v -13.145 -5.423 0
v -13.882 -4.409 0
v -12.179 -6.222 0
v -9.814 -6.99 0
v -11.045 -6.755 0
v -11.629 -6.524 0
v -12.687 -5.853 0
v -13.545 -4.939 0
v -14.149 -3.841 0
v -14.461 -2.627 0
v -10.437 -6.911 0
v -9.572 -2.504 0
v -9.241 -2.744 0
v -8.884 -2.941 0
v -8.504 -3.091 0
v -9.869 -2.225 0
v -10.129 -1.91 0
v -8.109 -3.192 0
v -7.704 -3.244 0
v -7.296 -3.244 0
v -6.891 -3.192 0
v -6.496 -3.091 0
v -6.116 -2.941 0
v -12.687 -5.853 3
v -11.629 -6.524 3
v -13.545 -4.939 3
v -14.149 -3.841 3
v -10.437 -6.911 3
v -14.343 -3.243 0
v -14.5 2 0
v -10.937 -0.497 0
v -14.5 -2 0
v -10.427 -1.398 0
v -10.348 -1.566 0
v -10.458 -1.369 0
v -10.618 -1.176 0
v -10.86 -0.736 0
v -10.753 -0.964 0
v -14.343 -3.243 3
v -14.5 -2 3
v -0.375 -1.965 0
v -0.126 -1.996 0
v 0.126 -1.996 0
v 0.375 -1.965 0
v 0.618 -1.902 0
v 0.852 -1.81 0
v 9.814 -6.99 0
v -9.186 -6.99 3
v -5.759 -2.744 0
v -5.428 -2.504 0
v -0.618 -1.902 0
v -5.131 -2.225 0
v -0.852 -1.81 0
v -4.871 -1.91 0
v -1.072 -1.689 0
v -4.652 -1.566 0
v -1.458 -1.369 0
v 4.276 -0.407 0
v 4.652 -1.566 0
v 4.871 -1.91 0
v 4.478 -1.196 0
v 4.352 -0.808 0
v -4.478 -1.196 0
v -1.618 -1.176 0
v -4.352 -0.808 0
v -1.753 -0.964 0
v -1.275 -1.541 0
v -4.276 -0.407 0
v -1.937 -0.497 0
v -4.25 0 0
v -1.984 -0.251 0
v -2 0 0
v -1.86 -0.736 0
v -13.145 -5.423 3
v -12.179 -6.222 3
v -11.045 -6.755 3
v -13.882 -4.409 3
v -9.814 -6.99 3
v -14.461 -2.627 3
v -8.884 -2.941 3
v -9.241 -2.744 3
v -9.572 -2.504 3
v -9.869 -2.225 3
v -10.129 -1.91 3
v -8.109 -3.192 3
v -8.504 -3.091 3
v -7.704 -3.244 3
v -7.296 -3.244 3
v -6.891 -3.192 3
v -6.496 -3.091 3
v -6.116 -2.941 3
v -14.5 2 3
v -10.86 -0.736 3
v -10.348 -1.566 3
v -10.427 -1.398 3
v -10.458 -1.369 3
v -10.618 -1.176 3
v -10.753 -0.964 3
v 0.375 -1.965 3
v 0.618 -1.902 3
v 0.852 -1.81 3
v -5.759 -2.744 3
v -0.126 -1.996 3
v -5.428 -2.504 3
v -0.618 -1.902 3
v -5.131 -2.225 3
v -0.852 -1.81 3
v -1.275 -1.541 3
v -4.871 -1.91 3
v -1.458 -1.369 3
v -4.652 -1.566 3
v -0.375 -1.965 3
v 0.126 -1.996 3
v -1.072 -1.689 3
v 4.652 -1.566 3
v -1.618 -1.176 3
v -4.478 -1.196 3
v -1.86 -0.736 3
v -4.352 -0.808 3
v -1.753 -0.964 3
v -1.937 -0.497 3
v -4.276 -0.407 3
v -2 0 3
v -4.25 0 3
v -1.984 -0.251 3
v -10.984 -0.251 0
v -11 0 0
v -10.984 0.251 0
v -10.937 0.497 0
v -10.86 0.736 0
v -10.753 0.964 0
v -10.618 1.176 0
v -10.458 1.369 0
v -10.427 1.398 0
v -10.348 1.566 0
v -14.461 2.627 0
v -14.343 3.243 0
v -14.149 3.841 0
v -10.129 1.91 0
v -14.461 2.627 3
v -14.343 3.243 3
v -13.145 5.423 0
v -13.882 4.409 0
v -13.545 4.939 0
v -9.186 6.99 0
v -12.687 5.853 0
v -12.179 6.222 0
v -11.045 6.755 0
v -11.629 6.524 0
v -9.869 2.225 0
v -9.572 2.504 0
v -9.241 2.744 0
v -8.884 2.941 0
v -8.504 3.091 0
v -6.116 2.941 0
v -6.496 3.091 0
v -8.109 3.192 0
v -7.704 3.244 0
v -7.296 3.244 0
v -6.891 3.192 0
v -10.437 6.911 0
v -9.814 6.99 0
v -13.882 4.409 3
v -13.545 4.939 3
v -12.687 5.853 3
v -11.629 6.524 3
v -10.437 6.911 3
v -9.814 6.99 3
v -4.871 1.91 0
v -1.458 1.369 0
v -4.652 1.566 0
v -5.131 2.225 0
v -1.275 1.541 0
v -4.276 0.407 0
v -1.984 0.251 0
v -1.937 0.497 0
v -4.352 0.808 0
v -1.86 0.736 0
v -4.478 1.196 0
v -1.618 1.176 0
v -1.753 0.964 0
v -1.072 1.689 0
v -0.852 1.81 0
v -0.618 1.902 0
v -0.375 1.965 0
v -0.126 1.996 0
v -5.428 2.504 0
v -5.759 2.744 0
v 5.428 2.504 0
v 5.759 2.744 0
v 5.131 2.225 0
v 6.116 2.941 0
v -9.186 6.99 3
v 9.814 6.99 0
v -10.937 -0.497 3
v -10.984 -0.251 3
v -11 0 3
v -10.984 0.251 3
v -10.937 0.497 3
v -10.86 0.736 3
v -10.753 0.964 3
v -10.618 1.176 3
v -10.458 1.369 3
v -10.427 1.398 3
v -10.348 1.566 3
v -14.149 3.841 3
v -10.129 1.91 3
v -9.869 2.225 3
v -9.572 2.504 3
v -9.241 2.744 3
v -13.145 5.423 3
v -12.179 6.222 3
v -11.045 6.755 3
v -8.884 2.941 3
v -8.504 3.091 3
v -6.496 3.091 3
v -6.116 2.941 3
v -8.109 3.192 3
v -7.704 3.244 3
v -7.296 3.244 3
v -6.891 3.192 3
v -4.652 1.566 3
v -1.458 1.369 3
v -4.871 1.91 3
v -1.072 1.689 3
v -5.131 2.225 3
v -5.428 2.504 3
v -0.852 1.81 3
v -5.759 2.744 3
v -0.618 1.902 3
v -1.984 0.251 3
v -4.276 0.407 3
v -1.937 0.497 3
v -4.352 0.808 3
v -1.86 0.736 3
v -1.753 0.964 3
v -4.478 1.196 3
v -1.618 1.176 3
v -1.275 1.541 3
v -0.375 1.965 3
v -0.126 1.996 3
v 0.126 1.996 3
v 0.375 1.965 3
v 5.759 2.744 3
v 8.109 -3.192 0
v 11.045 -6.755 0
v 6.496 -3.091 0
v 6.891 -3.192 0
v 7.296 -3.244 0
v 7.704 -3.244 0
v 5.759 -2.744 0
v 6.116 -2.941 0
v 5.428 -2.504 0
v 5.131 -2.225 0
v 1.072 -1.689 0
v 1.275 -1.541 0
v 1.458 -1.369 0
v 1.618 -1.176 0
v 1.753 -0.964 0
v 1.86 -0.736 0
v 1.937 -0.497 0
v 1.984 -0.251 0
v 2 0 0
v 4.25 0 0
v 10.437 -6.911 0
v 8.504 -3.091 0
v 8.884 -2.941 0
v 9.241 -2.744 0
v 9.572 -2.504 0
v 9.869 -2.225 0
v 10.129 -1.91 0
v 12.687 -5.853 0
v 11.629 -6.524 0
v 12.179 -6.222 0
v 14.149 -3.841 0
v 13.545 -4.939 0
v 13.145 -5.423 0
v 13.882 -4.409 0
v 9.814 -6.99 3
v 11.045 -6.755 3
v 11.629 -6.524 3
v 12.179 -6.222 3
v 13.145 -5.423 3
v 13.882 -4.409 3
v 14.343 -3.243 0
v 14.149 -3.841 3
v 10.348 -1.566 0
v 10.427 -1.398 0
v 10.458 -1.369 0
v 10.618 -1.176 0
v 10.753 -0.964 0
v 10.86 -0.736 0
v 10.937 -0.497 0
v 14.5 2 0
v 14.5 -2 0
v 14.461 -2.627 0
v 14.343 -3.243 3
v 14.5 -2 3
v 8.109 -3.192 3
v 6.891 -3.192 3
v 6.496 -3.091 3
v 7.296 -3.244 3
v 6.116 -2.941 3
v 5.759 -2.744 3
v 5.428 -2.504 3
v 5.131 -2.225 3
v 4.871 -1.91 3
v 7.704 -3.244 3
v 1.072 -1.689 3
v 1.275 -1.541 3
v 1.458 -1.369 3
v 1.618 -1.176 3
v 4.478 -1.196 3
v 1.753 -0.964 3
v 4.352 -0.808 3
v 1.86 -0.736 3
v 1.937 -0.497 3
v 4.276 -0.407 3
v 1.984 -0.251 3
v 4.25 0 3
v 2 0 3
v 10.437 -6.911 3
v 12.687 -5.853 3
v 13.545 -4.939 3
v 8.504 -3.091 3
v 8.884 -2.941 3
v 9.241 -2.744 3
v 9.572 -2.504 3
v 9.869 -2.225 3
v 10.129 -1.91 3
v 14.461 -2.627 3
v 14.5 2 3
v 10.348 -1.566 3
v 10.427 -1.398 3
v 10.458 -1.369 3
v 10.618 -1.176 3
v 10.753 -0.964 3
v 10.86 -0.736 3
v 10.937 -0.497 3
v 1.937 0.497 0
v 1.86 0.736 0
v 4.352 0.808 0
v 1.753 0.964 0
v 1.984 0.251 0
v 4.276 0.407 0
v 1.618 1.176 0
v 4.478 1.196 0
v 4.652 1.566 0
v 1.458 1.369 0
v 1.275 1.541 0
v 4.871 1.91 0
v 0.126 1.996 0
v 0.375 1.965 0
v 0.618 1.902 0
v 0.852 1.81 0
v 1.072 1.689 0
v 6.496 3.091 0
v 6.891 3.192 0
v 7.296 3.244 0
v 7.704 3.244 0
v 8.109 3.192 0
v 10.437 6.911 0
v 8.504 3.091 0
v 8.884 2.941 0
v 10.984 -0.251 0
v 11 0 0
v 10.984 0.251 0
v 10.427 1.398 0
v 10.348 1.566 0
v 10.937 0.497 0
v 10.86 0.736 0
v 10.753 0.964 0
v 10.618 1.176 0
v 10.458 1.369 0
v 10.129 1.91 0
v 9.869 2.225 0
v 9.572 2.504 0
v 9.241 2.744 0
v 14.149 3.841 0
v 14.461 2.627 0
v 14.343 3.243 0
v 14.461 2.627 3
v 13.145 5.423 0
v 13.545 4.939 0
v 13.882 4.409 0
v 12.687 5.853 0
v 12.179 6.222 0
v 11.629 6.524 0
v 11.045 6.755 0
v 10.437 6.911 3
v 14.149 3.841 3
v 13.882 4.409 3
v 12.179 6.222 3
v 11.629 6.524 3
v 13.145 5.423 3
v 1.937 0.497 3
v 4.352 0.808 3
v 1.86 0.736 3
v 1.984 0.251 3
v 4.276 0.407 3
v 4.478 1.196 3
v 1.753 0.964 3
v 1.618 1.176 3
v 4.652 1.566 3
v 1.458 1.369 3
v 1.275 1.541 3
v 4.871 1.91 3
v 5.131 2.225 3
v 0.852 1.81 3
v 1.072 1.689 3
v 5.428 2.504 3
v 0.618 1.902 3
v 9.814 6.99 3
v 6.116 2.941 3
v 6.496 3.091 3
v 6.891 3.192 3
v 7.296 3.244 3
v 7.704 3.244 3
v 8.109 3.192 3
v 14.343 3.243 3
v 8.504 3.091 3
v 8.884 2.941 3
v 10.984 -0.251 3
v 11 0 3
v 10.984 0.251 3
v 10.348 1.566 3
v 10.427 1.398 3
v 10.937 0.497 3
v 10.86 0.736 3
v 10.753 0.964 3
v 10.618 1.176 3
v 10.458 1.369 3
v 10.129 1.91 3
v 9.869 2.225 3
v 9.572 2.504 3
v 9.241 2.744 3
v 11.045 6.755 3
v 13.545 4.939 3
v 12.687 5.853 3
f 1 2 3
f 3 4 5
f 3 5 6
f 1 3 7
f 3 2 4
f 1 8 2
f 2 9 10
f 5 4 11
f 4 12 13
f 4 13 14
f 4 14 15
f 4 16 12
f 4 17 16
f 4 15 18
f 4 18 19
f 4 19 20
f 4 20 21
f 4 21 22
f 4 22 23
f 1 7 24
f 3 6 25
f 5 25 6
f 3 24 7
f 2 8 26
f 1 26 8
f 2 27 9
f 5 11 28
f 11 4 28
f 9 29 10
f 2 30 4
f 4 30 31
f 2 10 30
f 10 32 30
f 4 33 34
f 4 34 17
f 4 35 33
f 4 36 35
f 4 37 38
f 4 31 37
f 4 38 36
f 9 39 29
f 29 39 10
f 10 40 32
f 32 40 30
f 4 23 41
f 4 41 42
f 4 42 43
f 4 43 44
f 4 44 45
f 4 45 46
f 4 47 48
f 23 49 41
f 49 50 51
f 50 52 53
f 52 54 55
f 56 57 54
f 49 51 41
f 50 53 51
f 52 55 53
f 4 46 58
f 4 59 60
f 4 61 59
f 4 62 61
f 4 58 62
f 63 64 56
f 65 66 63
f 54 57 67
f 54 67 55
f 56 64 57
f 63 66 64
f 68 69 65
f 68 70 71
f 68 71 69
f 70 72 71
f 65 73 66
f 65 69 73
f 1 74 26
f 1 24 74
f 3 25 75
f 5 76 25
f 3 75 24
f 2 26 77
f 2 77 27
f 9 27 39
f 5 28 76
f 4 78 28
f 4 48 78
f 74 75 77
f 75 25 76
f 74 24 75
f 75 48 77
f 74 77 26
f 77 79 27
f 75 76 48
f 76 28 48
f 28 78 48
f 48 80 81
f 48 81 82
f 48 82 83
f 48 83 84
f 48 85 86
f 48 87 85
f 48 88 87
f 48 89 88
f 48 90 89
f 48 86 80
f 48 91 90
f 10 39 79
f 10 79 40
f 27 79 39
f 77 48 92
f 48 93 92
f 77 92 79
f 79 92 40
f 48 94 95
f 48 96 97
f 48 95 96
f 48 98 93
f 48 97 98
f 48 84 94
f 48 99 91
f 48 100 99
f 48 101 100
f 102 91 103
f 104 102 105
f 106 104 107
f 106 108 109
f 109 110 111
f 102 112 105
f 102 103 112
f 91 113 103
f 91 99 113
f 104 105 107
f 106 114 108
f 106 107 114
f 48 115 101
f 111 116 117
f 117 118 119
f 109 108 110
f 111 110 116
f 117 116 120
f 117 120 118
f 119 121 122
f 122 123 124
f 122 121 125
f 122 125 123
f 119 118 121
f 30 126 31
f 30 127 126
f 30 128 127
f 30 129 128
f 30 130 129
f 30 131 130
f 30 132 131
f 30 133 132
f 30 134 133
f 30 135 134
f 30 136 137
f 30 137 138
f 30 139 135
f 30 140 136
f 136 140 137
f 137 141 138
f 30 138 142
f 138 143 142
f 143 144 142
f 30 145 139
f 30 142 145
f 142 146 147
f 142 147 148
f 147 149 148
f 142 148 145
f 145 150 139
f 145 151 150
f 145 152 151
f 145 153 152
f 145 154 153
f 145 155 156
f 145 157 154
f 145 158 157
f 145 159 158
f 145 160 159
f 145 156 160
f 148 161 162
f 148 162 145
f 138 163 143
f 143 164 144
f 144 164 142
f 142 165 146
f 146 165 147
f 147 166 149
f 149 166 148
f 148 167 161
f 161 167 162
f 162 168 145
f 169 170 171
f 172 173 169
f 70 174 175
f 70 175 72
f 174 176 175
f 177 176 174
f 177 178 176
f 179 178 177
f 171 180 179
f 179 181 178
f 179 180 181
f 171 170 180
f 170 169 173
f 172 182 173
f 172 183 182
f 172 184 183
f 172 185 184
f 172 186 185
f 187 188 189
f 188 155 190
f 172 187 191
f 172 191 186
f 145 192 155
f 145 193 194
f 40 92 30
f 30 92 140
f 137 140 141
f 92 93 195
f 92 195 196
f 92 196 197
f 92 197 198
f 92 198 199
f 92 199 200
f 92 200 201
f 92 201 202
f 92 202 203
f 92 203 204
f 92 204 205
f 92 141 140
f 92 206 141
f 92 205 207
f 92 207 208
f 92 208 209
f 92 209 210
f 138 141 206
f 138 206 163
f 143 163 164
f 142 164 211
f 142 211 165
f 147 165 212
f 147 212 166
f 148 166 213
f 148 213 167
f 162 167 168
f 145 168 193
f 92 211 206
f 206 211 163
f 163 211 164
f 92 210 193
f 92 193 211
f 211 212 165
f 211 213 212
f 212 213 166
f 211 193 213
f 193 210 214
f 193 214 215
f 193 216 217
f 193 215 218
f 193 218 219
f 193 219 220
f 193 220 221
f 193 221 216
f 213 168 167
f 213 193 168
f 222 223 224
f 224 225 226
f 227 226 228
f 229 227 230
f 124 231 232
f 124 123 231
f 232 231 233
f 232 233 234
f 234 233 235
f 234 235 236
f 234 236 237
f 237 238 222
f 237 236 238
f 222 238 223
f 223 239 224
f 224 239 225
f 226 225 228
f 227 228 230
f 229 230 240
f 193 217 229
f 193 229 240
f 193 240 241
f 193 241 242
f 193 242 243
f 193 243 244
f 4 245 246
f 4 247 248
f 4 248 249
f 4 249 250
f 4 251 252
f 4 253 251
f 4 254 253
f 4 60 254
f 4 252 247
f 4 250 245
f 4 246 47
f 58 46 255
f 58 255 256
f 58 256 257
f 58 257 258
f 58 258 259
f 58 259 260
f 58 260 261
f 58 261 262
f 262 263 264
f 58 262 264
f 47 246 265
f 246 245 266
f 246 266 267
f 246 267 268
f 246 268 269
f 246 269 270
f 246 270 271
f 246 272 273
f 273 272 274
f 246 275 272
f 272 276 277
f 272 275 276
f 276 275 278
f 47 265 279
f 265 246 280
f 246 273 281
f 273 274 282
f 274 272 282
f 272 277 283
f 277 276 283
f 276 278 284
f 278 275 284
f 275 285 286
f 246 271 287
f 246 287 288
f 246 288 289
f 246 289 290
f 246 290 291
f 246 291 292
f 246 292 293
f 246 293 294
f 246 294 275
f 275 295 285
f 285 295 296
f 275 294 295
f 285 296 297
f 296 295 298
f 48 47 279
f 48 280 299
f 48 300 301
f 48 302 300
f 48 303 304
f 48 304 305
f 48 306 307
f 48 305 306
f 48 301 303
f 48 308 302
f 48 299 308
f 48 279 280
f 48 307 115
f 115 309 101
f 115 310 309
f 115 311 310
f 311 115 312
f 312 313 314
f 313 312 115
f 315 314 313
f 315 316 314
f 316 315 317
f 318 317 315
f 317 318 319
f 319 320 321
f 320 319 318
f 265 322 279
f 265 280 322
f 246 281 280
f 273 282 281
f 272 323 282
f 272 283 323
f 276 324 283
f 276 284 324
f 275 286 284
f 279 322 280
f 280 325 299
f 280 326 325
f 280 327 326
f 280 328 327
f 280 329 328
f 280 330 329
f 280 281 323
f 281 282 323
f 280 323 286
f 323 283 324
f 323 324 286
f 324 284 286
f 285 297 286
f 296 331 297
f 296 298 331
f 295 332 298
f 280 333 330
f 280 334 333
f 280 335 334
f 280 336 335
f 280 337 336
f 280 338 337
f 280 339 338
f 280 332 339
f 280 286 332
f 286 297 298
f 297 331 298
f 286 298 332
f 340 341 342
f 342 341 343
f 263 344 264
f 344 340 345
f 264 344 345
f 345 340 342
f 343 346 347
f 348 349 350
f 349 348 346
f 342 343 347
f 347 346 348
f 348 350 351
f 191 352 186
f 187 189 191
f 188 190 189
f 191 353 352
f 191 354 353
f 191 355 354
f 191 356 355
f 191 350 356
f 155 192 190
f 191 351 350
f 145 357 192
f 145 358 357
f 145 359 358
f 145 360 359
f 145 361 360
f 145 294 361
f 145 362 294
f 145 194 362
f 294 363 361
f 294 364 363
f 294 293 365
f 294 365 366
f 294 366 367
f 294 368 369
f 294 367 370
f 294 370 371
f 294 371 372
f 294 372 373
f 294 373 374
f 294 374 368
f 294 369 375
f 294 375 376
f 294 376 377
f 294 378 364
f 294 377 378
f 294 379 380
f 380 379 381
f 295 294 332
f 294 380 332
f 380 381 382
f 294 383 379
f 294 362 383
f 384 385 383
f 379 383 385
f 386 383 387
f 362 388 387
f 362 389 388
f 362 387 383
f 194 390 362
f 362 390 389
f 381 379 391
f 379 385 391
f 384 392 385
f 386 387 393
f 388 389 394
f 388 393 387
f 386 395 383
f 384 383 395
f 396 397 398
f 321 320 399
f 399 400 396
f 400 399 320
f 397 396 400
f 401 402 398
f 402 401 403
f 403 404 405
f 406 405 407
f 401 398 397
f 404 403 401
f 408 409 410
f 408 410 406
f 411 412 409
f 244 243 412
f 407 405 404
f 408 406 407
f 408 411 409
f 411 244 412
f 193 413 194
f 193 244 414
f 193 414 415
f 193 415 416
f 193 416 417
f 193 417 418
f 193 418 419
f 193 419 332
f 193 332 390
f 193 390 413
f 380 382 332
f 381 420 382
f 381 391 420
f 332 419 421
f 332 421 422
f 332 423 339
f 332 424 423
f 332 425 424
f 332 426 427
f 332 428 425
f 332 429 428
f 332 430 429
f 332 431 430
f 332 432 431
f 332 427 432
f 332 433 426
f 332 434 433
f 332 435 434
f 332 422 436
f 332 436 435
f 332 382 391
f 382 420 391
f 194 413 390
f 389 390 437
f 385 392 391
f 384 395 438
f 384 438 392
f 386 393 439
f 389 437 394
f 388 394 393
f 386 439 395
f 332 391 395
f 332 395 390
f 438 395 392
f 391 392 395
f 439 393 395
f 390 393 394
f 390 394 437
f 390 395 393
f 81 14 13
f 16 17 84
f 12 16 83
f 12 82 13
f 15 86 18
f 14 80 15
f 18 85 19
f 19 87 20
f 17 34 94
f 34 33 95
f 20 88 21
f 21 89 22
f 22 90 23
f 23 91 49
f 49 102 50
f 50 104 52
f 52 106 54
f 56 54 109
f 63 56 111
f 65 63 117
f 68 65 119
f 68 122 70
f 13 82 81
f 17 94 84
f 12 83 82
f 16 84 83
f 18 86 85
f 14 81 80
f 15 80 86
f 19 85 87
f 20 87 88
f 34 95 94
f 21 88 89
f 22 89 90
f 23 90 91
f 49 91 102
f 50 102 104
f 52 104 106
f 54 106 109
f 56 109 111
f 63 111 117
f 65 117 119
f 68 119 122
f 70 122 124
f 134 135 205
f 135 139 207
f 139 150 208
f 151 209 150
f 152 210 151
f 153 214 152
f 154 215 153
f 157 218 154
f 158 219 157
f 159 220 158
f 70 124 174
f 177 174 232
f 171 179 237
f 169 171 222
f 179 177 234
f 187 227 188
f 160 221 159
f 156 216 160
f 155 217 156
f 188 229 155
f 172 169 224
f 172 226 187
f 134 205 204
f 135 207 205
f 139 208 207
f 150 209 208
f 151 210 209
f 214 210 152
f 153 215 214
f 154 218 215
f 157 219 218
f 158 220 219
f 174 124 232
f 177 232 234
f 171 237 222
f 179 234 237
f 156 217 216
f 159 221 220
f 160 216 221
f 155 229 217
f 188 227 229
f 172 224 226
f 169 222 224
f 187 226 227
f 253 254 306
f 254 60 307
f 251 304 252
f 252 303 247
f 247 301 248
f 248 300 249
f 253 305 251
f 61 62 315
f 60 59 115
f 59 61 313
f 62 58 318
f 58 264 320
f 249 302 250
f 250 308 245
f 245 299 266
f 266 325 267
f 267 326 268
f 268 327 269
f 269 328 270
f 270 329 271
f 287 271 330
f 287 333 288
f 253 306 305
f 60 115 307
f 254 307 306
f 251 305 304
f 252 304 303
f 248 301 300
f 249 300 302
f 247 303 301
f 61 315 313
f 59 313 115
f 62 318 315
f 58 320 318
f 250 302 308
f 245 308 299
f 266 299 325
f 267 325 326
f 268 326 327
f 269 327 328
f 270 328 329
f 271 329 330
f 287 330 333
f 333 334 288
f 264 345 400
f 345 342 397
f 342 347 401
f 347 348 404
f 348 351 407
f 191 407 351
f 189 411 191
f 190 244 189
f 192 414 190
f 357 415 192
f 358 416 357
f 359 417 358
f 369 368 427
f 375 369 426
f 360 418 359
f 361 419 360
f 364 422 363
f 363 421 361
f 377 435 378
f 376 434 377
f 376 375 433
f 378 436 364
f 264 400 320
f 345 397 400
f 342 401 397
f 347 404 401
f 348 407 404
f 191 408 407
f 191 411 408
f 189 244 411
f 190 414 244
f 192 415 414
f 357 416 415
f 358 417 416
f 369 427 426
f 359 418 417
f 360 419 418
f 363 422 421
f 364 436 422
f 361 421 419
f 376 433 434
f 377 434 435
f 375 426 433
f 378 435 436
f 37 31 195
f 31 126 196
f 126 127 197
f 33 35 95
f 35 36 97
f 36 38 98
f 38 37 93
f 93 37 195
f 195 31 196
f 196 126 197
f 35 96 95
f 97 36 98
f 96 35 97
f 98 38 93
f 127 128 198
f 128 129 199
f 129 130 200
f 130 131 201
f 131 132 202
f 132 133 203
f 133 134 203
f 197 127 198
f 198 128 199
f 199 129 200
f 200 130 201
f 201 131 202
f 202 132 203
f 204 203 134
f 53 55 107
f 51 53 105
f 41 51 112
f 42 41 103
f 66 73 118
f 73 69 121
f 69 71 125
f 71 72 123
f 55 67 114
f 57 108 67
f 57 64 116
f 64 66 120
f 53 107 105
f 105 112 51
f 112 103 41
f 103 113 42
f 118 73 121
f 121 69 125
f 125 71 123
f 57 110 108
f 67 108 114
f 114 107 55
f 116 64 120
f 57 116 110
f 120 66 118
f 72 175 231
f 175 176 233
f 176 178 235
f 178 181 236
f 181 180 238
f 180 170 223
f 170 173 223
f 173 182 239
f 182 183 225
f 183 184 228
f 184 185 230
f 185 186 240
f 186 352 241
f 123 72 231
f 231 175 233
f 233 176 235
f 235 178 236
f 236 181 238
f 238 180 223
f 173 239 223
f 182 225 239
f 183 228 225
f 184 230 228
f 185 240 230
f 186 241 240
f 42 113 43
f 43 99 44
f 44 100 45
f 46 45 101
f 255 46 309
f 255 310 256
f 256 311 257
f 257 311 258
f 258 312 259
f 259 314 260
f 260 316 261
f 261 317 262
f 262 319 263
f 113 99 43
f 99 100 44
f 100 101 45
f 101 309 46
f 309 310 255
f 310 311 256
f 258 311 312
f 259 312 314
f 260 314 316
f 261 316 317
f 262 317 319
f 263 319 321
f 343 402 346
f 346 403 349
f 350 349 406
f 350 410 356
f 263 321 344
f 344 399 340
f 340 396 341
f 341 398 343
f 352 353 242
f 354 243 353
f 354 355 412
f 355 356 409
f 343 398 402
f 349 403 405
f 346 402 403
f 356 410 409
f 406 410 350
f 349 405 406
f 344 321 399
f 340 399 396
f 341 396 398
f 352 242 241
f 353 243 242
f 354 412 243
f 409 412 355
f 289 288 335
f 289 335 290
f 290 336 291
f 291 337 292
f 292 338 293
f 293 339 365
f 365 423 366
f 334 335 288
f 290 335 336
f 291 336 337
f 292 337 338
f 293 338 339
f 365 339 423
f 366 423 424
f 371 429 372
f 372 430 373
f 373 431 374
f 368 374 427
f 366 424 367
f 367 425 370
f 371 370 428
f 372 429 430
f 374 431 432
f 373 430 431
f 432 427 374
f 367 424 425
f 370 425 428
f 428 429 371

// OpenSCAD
$fn = 50;

difference() {
	union() {
		hull() {
			translate(v = [-9.5, 2.0, 0]) {
				cylinder(h = 3, r = 5);
			}
			translate(v = [9.5, 2.0, 0]) {
				cylinder(h = 3, r = 5);
			}
			translate(v = [-9.5, -2.0, 0]) {
				cylinder(h = 3, r = 5);
			}
			translate(v = [9.5, -2.0, 0]) {
				cylinder(h = 3, r = 5);
			}
		}
	}
	union() {
		translate(v = [-7.5, 0.0, -100.0]) {
			cylinder(h = 200, r = 3.25);
		}
		translate(v = [7.5, 0.0, -100.0]) {
			cylinder(h = 200, r = 3.25);
		}
		translate(v = [-7.5, 0.0, -100.0]) {
			cylinder(h = 200, r = 1.8);
		}
		translate(v = [7.5, 0.0, -100.0]) {
			cylinder(h = 200, r = 1.8);
		}
		translate(v = [-9.0, 0, 0.0]) {
			cylinder(h = 3, r = 2.0);
		}
		cylinder(h = 3, r = 2.0);
		translate(v = [9.0, 0, 0.0]) {
			cylinder(h = 3, r = 2.0);
		}
	}
}
